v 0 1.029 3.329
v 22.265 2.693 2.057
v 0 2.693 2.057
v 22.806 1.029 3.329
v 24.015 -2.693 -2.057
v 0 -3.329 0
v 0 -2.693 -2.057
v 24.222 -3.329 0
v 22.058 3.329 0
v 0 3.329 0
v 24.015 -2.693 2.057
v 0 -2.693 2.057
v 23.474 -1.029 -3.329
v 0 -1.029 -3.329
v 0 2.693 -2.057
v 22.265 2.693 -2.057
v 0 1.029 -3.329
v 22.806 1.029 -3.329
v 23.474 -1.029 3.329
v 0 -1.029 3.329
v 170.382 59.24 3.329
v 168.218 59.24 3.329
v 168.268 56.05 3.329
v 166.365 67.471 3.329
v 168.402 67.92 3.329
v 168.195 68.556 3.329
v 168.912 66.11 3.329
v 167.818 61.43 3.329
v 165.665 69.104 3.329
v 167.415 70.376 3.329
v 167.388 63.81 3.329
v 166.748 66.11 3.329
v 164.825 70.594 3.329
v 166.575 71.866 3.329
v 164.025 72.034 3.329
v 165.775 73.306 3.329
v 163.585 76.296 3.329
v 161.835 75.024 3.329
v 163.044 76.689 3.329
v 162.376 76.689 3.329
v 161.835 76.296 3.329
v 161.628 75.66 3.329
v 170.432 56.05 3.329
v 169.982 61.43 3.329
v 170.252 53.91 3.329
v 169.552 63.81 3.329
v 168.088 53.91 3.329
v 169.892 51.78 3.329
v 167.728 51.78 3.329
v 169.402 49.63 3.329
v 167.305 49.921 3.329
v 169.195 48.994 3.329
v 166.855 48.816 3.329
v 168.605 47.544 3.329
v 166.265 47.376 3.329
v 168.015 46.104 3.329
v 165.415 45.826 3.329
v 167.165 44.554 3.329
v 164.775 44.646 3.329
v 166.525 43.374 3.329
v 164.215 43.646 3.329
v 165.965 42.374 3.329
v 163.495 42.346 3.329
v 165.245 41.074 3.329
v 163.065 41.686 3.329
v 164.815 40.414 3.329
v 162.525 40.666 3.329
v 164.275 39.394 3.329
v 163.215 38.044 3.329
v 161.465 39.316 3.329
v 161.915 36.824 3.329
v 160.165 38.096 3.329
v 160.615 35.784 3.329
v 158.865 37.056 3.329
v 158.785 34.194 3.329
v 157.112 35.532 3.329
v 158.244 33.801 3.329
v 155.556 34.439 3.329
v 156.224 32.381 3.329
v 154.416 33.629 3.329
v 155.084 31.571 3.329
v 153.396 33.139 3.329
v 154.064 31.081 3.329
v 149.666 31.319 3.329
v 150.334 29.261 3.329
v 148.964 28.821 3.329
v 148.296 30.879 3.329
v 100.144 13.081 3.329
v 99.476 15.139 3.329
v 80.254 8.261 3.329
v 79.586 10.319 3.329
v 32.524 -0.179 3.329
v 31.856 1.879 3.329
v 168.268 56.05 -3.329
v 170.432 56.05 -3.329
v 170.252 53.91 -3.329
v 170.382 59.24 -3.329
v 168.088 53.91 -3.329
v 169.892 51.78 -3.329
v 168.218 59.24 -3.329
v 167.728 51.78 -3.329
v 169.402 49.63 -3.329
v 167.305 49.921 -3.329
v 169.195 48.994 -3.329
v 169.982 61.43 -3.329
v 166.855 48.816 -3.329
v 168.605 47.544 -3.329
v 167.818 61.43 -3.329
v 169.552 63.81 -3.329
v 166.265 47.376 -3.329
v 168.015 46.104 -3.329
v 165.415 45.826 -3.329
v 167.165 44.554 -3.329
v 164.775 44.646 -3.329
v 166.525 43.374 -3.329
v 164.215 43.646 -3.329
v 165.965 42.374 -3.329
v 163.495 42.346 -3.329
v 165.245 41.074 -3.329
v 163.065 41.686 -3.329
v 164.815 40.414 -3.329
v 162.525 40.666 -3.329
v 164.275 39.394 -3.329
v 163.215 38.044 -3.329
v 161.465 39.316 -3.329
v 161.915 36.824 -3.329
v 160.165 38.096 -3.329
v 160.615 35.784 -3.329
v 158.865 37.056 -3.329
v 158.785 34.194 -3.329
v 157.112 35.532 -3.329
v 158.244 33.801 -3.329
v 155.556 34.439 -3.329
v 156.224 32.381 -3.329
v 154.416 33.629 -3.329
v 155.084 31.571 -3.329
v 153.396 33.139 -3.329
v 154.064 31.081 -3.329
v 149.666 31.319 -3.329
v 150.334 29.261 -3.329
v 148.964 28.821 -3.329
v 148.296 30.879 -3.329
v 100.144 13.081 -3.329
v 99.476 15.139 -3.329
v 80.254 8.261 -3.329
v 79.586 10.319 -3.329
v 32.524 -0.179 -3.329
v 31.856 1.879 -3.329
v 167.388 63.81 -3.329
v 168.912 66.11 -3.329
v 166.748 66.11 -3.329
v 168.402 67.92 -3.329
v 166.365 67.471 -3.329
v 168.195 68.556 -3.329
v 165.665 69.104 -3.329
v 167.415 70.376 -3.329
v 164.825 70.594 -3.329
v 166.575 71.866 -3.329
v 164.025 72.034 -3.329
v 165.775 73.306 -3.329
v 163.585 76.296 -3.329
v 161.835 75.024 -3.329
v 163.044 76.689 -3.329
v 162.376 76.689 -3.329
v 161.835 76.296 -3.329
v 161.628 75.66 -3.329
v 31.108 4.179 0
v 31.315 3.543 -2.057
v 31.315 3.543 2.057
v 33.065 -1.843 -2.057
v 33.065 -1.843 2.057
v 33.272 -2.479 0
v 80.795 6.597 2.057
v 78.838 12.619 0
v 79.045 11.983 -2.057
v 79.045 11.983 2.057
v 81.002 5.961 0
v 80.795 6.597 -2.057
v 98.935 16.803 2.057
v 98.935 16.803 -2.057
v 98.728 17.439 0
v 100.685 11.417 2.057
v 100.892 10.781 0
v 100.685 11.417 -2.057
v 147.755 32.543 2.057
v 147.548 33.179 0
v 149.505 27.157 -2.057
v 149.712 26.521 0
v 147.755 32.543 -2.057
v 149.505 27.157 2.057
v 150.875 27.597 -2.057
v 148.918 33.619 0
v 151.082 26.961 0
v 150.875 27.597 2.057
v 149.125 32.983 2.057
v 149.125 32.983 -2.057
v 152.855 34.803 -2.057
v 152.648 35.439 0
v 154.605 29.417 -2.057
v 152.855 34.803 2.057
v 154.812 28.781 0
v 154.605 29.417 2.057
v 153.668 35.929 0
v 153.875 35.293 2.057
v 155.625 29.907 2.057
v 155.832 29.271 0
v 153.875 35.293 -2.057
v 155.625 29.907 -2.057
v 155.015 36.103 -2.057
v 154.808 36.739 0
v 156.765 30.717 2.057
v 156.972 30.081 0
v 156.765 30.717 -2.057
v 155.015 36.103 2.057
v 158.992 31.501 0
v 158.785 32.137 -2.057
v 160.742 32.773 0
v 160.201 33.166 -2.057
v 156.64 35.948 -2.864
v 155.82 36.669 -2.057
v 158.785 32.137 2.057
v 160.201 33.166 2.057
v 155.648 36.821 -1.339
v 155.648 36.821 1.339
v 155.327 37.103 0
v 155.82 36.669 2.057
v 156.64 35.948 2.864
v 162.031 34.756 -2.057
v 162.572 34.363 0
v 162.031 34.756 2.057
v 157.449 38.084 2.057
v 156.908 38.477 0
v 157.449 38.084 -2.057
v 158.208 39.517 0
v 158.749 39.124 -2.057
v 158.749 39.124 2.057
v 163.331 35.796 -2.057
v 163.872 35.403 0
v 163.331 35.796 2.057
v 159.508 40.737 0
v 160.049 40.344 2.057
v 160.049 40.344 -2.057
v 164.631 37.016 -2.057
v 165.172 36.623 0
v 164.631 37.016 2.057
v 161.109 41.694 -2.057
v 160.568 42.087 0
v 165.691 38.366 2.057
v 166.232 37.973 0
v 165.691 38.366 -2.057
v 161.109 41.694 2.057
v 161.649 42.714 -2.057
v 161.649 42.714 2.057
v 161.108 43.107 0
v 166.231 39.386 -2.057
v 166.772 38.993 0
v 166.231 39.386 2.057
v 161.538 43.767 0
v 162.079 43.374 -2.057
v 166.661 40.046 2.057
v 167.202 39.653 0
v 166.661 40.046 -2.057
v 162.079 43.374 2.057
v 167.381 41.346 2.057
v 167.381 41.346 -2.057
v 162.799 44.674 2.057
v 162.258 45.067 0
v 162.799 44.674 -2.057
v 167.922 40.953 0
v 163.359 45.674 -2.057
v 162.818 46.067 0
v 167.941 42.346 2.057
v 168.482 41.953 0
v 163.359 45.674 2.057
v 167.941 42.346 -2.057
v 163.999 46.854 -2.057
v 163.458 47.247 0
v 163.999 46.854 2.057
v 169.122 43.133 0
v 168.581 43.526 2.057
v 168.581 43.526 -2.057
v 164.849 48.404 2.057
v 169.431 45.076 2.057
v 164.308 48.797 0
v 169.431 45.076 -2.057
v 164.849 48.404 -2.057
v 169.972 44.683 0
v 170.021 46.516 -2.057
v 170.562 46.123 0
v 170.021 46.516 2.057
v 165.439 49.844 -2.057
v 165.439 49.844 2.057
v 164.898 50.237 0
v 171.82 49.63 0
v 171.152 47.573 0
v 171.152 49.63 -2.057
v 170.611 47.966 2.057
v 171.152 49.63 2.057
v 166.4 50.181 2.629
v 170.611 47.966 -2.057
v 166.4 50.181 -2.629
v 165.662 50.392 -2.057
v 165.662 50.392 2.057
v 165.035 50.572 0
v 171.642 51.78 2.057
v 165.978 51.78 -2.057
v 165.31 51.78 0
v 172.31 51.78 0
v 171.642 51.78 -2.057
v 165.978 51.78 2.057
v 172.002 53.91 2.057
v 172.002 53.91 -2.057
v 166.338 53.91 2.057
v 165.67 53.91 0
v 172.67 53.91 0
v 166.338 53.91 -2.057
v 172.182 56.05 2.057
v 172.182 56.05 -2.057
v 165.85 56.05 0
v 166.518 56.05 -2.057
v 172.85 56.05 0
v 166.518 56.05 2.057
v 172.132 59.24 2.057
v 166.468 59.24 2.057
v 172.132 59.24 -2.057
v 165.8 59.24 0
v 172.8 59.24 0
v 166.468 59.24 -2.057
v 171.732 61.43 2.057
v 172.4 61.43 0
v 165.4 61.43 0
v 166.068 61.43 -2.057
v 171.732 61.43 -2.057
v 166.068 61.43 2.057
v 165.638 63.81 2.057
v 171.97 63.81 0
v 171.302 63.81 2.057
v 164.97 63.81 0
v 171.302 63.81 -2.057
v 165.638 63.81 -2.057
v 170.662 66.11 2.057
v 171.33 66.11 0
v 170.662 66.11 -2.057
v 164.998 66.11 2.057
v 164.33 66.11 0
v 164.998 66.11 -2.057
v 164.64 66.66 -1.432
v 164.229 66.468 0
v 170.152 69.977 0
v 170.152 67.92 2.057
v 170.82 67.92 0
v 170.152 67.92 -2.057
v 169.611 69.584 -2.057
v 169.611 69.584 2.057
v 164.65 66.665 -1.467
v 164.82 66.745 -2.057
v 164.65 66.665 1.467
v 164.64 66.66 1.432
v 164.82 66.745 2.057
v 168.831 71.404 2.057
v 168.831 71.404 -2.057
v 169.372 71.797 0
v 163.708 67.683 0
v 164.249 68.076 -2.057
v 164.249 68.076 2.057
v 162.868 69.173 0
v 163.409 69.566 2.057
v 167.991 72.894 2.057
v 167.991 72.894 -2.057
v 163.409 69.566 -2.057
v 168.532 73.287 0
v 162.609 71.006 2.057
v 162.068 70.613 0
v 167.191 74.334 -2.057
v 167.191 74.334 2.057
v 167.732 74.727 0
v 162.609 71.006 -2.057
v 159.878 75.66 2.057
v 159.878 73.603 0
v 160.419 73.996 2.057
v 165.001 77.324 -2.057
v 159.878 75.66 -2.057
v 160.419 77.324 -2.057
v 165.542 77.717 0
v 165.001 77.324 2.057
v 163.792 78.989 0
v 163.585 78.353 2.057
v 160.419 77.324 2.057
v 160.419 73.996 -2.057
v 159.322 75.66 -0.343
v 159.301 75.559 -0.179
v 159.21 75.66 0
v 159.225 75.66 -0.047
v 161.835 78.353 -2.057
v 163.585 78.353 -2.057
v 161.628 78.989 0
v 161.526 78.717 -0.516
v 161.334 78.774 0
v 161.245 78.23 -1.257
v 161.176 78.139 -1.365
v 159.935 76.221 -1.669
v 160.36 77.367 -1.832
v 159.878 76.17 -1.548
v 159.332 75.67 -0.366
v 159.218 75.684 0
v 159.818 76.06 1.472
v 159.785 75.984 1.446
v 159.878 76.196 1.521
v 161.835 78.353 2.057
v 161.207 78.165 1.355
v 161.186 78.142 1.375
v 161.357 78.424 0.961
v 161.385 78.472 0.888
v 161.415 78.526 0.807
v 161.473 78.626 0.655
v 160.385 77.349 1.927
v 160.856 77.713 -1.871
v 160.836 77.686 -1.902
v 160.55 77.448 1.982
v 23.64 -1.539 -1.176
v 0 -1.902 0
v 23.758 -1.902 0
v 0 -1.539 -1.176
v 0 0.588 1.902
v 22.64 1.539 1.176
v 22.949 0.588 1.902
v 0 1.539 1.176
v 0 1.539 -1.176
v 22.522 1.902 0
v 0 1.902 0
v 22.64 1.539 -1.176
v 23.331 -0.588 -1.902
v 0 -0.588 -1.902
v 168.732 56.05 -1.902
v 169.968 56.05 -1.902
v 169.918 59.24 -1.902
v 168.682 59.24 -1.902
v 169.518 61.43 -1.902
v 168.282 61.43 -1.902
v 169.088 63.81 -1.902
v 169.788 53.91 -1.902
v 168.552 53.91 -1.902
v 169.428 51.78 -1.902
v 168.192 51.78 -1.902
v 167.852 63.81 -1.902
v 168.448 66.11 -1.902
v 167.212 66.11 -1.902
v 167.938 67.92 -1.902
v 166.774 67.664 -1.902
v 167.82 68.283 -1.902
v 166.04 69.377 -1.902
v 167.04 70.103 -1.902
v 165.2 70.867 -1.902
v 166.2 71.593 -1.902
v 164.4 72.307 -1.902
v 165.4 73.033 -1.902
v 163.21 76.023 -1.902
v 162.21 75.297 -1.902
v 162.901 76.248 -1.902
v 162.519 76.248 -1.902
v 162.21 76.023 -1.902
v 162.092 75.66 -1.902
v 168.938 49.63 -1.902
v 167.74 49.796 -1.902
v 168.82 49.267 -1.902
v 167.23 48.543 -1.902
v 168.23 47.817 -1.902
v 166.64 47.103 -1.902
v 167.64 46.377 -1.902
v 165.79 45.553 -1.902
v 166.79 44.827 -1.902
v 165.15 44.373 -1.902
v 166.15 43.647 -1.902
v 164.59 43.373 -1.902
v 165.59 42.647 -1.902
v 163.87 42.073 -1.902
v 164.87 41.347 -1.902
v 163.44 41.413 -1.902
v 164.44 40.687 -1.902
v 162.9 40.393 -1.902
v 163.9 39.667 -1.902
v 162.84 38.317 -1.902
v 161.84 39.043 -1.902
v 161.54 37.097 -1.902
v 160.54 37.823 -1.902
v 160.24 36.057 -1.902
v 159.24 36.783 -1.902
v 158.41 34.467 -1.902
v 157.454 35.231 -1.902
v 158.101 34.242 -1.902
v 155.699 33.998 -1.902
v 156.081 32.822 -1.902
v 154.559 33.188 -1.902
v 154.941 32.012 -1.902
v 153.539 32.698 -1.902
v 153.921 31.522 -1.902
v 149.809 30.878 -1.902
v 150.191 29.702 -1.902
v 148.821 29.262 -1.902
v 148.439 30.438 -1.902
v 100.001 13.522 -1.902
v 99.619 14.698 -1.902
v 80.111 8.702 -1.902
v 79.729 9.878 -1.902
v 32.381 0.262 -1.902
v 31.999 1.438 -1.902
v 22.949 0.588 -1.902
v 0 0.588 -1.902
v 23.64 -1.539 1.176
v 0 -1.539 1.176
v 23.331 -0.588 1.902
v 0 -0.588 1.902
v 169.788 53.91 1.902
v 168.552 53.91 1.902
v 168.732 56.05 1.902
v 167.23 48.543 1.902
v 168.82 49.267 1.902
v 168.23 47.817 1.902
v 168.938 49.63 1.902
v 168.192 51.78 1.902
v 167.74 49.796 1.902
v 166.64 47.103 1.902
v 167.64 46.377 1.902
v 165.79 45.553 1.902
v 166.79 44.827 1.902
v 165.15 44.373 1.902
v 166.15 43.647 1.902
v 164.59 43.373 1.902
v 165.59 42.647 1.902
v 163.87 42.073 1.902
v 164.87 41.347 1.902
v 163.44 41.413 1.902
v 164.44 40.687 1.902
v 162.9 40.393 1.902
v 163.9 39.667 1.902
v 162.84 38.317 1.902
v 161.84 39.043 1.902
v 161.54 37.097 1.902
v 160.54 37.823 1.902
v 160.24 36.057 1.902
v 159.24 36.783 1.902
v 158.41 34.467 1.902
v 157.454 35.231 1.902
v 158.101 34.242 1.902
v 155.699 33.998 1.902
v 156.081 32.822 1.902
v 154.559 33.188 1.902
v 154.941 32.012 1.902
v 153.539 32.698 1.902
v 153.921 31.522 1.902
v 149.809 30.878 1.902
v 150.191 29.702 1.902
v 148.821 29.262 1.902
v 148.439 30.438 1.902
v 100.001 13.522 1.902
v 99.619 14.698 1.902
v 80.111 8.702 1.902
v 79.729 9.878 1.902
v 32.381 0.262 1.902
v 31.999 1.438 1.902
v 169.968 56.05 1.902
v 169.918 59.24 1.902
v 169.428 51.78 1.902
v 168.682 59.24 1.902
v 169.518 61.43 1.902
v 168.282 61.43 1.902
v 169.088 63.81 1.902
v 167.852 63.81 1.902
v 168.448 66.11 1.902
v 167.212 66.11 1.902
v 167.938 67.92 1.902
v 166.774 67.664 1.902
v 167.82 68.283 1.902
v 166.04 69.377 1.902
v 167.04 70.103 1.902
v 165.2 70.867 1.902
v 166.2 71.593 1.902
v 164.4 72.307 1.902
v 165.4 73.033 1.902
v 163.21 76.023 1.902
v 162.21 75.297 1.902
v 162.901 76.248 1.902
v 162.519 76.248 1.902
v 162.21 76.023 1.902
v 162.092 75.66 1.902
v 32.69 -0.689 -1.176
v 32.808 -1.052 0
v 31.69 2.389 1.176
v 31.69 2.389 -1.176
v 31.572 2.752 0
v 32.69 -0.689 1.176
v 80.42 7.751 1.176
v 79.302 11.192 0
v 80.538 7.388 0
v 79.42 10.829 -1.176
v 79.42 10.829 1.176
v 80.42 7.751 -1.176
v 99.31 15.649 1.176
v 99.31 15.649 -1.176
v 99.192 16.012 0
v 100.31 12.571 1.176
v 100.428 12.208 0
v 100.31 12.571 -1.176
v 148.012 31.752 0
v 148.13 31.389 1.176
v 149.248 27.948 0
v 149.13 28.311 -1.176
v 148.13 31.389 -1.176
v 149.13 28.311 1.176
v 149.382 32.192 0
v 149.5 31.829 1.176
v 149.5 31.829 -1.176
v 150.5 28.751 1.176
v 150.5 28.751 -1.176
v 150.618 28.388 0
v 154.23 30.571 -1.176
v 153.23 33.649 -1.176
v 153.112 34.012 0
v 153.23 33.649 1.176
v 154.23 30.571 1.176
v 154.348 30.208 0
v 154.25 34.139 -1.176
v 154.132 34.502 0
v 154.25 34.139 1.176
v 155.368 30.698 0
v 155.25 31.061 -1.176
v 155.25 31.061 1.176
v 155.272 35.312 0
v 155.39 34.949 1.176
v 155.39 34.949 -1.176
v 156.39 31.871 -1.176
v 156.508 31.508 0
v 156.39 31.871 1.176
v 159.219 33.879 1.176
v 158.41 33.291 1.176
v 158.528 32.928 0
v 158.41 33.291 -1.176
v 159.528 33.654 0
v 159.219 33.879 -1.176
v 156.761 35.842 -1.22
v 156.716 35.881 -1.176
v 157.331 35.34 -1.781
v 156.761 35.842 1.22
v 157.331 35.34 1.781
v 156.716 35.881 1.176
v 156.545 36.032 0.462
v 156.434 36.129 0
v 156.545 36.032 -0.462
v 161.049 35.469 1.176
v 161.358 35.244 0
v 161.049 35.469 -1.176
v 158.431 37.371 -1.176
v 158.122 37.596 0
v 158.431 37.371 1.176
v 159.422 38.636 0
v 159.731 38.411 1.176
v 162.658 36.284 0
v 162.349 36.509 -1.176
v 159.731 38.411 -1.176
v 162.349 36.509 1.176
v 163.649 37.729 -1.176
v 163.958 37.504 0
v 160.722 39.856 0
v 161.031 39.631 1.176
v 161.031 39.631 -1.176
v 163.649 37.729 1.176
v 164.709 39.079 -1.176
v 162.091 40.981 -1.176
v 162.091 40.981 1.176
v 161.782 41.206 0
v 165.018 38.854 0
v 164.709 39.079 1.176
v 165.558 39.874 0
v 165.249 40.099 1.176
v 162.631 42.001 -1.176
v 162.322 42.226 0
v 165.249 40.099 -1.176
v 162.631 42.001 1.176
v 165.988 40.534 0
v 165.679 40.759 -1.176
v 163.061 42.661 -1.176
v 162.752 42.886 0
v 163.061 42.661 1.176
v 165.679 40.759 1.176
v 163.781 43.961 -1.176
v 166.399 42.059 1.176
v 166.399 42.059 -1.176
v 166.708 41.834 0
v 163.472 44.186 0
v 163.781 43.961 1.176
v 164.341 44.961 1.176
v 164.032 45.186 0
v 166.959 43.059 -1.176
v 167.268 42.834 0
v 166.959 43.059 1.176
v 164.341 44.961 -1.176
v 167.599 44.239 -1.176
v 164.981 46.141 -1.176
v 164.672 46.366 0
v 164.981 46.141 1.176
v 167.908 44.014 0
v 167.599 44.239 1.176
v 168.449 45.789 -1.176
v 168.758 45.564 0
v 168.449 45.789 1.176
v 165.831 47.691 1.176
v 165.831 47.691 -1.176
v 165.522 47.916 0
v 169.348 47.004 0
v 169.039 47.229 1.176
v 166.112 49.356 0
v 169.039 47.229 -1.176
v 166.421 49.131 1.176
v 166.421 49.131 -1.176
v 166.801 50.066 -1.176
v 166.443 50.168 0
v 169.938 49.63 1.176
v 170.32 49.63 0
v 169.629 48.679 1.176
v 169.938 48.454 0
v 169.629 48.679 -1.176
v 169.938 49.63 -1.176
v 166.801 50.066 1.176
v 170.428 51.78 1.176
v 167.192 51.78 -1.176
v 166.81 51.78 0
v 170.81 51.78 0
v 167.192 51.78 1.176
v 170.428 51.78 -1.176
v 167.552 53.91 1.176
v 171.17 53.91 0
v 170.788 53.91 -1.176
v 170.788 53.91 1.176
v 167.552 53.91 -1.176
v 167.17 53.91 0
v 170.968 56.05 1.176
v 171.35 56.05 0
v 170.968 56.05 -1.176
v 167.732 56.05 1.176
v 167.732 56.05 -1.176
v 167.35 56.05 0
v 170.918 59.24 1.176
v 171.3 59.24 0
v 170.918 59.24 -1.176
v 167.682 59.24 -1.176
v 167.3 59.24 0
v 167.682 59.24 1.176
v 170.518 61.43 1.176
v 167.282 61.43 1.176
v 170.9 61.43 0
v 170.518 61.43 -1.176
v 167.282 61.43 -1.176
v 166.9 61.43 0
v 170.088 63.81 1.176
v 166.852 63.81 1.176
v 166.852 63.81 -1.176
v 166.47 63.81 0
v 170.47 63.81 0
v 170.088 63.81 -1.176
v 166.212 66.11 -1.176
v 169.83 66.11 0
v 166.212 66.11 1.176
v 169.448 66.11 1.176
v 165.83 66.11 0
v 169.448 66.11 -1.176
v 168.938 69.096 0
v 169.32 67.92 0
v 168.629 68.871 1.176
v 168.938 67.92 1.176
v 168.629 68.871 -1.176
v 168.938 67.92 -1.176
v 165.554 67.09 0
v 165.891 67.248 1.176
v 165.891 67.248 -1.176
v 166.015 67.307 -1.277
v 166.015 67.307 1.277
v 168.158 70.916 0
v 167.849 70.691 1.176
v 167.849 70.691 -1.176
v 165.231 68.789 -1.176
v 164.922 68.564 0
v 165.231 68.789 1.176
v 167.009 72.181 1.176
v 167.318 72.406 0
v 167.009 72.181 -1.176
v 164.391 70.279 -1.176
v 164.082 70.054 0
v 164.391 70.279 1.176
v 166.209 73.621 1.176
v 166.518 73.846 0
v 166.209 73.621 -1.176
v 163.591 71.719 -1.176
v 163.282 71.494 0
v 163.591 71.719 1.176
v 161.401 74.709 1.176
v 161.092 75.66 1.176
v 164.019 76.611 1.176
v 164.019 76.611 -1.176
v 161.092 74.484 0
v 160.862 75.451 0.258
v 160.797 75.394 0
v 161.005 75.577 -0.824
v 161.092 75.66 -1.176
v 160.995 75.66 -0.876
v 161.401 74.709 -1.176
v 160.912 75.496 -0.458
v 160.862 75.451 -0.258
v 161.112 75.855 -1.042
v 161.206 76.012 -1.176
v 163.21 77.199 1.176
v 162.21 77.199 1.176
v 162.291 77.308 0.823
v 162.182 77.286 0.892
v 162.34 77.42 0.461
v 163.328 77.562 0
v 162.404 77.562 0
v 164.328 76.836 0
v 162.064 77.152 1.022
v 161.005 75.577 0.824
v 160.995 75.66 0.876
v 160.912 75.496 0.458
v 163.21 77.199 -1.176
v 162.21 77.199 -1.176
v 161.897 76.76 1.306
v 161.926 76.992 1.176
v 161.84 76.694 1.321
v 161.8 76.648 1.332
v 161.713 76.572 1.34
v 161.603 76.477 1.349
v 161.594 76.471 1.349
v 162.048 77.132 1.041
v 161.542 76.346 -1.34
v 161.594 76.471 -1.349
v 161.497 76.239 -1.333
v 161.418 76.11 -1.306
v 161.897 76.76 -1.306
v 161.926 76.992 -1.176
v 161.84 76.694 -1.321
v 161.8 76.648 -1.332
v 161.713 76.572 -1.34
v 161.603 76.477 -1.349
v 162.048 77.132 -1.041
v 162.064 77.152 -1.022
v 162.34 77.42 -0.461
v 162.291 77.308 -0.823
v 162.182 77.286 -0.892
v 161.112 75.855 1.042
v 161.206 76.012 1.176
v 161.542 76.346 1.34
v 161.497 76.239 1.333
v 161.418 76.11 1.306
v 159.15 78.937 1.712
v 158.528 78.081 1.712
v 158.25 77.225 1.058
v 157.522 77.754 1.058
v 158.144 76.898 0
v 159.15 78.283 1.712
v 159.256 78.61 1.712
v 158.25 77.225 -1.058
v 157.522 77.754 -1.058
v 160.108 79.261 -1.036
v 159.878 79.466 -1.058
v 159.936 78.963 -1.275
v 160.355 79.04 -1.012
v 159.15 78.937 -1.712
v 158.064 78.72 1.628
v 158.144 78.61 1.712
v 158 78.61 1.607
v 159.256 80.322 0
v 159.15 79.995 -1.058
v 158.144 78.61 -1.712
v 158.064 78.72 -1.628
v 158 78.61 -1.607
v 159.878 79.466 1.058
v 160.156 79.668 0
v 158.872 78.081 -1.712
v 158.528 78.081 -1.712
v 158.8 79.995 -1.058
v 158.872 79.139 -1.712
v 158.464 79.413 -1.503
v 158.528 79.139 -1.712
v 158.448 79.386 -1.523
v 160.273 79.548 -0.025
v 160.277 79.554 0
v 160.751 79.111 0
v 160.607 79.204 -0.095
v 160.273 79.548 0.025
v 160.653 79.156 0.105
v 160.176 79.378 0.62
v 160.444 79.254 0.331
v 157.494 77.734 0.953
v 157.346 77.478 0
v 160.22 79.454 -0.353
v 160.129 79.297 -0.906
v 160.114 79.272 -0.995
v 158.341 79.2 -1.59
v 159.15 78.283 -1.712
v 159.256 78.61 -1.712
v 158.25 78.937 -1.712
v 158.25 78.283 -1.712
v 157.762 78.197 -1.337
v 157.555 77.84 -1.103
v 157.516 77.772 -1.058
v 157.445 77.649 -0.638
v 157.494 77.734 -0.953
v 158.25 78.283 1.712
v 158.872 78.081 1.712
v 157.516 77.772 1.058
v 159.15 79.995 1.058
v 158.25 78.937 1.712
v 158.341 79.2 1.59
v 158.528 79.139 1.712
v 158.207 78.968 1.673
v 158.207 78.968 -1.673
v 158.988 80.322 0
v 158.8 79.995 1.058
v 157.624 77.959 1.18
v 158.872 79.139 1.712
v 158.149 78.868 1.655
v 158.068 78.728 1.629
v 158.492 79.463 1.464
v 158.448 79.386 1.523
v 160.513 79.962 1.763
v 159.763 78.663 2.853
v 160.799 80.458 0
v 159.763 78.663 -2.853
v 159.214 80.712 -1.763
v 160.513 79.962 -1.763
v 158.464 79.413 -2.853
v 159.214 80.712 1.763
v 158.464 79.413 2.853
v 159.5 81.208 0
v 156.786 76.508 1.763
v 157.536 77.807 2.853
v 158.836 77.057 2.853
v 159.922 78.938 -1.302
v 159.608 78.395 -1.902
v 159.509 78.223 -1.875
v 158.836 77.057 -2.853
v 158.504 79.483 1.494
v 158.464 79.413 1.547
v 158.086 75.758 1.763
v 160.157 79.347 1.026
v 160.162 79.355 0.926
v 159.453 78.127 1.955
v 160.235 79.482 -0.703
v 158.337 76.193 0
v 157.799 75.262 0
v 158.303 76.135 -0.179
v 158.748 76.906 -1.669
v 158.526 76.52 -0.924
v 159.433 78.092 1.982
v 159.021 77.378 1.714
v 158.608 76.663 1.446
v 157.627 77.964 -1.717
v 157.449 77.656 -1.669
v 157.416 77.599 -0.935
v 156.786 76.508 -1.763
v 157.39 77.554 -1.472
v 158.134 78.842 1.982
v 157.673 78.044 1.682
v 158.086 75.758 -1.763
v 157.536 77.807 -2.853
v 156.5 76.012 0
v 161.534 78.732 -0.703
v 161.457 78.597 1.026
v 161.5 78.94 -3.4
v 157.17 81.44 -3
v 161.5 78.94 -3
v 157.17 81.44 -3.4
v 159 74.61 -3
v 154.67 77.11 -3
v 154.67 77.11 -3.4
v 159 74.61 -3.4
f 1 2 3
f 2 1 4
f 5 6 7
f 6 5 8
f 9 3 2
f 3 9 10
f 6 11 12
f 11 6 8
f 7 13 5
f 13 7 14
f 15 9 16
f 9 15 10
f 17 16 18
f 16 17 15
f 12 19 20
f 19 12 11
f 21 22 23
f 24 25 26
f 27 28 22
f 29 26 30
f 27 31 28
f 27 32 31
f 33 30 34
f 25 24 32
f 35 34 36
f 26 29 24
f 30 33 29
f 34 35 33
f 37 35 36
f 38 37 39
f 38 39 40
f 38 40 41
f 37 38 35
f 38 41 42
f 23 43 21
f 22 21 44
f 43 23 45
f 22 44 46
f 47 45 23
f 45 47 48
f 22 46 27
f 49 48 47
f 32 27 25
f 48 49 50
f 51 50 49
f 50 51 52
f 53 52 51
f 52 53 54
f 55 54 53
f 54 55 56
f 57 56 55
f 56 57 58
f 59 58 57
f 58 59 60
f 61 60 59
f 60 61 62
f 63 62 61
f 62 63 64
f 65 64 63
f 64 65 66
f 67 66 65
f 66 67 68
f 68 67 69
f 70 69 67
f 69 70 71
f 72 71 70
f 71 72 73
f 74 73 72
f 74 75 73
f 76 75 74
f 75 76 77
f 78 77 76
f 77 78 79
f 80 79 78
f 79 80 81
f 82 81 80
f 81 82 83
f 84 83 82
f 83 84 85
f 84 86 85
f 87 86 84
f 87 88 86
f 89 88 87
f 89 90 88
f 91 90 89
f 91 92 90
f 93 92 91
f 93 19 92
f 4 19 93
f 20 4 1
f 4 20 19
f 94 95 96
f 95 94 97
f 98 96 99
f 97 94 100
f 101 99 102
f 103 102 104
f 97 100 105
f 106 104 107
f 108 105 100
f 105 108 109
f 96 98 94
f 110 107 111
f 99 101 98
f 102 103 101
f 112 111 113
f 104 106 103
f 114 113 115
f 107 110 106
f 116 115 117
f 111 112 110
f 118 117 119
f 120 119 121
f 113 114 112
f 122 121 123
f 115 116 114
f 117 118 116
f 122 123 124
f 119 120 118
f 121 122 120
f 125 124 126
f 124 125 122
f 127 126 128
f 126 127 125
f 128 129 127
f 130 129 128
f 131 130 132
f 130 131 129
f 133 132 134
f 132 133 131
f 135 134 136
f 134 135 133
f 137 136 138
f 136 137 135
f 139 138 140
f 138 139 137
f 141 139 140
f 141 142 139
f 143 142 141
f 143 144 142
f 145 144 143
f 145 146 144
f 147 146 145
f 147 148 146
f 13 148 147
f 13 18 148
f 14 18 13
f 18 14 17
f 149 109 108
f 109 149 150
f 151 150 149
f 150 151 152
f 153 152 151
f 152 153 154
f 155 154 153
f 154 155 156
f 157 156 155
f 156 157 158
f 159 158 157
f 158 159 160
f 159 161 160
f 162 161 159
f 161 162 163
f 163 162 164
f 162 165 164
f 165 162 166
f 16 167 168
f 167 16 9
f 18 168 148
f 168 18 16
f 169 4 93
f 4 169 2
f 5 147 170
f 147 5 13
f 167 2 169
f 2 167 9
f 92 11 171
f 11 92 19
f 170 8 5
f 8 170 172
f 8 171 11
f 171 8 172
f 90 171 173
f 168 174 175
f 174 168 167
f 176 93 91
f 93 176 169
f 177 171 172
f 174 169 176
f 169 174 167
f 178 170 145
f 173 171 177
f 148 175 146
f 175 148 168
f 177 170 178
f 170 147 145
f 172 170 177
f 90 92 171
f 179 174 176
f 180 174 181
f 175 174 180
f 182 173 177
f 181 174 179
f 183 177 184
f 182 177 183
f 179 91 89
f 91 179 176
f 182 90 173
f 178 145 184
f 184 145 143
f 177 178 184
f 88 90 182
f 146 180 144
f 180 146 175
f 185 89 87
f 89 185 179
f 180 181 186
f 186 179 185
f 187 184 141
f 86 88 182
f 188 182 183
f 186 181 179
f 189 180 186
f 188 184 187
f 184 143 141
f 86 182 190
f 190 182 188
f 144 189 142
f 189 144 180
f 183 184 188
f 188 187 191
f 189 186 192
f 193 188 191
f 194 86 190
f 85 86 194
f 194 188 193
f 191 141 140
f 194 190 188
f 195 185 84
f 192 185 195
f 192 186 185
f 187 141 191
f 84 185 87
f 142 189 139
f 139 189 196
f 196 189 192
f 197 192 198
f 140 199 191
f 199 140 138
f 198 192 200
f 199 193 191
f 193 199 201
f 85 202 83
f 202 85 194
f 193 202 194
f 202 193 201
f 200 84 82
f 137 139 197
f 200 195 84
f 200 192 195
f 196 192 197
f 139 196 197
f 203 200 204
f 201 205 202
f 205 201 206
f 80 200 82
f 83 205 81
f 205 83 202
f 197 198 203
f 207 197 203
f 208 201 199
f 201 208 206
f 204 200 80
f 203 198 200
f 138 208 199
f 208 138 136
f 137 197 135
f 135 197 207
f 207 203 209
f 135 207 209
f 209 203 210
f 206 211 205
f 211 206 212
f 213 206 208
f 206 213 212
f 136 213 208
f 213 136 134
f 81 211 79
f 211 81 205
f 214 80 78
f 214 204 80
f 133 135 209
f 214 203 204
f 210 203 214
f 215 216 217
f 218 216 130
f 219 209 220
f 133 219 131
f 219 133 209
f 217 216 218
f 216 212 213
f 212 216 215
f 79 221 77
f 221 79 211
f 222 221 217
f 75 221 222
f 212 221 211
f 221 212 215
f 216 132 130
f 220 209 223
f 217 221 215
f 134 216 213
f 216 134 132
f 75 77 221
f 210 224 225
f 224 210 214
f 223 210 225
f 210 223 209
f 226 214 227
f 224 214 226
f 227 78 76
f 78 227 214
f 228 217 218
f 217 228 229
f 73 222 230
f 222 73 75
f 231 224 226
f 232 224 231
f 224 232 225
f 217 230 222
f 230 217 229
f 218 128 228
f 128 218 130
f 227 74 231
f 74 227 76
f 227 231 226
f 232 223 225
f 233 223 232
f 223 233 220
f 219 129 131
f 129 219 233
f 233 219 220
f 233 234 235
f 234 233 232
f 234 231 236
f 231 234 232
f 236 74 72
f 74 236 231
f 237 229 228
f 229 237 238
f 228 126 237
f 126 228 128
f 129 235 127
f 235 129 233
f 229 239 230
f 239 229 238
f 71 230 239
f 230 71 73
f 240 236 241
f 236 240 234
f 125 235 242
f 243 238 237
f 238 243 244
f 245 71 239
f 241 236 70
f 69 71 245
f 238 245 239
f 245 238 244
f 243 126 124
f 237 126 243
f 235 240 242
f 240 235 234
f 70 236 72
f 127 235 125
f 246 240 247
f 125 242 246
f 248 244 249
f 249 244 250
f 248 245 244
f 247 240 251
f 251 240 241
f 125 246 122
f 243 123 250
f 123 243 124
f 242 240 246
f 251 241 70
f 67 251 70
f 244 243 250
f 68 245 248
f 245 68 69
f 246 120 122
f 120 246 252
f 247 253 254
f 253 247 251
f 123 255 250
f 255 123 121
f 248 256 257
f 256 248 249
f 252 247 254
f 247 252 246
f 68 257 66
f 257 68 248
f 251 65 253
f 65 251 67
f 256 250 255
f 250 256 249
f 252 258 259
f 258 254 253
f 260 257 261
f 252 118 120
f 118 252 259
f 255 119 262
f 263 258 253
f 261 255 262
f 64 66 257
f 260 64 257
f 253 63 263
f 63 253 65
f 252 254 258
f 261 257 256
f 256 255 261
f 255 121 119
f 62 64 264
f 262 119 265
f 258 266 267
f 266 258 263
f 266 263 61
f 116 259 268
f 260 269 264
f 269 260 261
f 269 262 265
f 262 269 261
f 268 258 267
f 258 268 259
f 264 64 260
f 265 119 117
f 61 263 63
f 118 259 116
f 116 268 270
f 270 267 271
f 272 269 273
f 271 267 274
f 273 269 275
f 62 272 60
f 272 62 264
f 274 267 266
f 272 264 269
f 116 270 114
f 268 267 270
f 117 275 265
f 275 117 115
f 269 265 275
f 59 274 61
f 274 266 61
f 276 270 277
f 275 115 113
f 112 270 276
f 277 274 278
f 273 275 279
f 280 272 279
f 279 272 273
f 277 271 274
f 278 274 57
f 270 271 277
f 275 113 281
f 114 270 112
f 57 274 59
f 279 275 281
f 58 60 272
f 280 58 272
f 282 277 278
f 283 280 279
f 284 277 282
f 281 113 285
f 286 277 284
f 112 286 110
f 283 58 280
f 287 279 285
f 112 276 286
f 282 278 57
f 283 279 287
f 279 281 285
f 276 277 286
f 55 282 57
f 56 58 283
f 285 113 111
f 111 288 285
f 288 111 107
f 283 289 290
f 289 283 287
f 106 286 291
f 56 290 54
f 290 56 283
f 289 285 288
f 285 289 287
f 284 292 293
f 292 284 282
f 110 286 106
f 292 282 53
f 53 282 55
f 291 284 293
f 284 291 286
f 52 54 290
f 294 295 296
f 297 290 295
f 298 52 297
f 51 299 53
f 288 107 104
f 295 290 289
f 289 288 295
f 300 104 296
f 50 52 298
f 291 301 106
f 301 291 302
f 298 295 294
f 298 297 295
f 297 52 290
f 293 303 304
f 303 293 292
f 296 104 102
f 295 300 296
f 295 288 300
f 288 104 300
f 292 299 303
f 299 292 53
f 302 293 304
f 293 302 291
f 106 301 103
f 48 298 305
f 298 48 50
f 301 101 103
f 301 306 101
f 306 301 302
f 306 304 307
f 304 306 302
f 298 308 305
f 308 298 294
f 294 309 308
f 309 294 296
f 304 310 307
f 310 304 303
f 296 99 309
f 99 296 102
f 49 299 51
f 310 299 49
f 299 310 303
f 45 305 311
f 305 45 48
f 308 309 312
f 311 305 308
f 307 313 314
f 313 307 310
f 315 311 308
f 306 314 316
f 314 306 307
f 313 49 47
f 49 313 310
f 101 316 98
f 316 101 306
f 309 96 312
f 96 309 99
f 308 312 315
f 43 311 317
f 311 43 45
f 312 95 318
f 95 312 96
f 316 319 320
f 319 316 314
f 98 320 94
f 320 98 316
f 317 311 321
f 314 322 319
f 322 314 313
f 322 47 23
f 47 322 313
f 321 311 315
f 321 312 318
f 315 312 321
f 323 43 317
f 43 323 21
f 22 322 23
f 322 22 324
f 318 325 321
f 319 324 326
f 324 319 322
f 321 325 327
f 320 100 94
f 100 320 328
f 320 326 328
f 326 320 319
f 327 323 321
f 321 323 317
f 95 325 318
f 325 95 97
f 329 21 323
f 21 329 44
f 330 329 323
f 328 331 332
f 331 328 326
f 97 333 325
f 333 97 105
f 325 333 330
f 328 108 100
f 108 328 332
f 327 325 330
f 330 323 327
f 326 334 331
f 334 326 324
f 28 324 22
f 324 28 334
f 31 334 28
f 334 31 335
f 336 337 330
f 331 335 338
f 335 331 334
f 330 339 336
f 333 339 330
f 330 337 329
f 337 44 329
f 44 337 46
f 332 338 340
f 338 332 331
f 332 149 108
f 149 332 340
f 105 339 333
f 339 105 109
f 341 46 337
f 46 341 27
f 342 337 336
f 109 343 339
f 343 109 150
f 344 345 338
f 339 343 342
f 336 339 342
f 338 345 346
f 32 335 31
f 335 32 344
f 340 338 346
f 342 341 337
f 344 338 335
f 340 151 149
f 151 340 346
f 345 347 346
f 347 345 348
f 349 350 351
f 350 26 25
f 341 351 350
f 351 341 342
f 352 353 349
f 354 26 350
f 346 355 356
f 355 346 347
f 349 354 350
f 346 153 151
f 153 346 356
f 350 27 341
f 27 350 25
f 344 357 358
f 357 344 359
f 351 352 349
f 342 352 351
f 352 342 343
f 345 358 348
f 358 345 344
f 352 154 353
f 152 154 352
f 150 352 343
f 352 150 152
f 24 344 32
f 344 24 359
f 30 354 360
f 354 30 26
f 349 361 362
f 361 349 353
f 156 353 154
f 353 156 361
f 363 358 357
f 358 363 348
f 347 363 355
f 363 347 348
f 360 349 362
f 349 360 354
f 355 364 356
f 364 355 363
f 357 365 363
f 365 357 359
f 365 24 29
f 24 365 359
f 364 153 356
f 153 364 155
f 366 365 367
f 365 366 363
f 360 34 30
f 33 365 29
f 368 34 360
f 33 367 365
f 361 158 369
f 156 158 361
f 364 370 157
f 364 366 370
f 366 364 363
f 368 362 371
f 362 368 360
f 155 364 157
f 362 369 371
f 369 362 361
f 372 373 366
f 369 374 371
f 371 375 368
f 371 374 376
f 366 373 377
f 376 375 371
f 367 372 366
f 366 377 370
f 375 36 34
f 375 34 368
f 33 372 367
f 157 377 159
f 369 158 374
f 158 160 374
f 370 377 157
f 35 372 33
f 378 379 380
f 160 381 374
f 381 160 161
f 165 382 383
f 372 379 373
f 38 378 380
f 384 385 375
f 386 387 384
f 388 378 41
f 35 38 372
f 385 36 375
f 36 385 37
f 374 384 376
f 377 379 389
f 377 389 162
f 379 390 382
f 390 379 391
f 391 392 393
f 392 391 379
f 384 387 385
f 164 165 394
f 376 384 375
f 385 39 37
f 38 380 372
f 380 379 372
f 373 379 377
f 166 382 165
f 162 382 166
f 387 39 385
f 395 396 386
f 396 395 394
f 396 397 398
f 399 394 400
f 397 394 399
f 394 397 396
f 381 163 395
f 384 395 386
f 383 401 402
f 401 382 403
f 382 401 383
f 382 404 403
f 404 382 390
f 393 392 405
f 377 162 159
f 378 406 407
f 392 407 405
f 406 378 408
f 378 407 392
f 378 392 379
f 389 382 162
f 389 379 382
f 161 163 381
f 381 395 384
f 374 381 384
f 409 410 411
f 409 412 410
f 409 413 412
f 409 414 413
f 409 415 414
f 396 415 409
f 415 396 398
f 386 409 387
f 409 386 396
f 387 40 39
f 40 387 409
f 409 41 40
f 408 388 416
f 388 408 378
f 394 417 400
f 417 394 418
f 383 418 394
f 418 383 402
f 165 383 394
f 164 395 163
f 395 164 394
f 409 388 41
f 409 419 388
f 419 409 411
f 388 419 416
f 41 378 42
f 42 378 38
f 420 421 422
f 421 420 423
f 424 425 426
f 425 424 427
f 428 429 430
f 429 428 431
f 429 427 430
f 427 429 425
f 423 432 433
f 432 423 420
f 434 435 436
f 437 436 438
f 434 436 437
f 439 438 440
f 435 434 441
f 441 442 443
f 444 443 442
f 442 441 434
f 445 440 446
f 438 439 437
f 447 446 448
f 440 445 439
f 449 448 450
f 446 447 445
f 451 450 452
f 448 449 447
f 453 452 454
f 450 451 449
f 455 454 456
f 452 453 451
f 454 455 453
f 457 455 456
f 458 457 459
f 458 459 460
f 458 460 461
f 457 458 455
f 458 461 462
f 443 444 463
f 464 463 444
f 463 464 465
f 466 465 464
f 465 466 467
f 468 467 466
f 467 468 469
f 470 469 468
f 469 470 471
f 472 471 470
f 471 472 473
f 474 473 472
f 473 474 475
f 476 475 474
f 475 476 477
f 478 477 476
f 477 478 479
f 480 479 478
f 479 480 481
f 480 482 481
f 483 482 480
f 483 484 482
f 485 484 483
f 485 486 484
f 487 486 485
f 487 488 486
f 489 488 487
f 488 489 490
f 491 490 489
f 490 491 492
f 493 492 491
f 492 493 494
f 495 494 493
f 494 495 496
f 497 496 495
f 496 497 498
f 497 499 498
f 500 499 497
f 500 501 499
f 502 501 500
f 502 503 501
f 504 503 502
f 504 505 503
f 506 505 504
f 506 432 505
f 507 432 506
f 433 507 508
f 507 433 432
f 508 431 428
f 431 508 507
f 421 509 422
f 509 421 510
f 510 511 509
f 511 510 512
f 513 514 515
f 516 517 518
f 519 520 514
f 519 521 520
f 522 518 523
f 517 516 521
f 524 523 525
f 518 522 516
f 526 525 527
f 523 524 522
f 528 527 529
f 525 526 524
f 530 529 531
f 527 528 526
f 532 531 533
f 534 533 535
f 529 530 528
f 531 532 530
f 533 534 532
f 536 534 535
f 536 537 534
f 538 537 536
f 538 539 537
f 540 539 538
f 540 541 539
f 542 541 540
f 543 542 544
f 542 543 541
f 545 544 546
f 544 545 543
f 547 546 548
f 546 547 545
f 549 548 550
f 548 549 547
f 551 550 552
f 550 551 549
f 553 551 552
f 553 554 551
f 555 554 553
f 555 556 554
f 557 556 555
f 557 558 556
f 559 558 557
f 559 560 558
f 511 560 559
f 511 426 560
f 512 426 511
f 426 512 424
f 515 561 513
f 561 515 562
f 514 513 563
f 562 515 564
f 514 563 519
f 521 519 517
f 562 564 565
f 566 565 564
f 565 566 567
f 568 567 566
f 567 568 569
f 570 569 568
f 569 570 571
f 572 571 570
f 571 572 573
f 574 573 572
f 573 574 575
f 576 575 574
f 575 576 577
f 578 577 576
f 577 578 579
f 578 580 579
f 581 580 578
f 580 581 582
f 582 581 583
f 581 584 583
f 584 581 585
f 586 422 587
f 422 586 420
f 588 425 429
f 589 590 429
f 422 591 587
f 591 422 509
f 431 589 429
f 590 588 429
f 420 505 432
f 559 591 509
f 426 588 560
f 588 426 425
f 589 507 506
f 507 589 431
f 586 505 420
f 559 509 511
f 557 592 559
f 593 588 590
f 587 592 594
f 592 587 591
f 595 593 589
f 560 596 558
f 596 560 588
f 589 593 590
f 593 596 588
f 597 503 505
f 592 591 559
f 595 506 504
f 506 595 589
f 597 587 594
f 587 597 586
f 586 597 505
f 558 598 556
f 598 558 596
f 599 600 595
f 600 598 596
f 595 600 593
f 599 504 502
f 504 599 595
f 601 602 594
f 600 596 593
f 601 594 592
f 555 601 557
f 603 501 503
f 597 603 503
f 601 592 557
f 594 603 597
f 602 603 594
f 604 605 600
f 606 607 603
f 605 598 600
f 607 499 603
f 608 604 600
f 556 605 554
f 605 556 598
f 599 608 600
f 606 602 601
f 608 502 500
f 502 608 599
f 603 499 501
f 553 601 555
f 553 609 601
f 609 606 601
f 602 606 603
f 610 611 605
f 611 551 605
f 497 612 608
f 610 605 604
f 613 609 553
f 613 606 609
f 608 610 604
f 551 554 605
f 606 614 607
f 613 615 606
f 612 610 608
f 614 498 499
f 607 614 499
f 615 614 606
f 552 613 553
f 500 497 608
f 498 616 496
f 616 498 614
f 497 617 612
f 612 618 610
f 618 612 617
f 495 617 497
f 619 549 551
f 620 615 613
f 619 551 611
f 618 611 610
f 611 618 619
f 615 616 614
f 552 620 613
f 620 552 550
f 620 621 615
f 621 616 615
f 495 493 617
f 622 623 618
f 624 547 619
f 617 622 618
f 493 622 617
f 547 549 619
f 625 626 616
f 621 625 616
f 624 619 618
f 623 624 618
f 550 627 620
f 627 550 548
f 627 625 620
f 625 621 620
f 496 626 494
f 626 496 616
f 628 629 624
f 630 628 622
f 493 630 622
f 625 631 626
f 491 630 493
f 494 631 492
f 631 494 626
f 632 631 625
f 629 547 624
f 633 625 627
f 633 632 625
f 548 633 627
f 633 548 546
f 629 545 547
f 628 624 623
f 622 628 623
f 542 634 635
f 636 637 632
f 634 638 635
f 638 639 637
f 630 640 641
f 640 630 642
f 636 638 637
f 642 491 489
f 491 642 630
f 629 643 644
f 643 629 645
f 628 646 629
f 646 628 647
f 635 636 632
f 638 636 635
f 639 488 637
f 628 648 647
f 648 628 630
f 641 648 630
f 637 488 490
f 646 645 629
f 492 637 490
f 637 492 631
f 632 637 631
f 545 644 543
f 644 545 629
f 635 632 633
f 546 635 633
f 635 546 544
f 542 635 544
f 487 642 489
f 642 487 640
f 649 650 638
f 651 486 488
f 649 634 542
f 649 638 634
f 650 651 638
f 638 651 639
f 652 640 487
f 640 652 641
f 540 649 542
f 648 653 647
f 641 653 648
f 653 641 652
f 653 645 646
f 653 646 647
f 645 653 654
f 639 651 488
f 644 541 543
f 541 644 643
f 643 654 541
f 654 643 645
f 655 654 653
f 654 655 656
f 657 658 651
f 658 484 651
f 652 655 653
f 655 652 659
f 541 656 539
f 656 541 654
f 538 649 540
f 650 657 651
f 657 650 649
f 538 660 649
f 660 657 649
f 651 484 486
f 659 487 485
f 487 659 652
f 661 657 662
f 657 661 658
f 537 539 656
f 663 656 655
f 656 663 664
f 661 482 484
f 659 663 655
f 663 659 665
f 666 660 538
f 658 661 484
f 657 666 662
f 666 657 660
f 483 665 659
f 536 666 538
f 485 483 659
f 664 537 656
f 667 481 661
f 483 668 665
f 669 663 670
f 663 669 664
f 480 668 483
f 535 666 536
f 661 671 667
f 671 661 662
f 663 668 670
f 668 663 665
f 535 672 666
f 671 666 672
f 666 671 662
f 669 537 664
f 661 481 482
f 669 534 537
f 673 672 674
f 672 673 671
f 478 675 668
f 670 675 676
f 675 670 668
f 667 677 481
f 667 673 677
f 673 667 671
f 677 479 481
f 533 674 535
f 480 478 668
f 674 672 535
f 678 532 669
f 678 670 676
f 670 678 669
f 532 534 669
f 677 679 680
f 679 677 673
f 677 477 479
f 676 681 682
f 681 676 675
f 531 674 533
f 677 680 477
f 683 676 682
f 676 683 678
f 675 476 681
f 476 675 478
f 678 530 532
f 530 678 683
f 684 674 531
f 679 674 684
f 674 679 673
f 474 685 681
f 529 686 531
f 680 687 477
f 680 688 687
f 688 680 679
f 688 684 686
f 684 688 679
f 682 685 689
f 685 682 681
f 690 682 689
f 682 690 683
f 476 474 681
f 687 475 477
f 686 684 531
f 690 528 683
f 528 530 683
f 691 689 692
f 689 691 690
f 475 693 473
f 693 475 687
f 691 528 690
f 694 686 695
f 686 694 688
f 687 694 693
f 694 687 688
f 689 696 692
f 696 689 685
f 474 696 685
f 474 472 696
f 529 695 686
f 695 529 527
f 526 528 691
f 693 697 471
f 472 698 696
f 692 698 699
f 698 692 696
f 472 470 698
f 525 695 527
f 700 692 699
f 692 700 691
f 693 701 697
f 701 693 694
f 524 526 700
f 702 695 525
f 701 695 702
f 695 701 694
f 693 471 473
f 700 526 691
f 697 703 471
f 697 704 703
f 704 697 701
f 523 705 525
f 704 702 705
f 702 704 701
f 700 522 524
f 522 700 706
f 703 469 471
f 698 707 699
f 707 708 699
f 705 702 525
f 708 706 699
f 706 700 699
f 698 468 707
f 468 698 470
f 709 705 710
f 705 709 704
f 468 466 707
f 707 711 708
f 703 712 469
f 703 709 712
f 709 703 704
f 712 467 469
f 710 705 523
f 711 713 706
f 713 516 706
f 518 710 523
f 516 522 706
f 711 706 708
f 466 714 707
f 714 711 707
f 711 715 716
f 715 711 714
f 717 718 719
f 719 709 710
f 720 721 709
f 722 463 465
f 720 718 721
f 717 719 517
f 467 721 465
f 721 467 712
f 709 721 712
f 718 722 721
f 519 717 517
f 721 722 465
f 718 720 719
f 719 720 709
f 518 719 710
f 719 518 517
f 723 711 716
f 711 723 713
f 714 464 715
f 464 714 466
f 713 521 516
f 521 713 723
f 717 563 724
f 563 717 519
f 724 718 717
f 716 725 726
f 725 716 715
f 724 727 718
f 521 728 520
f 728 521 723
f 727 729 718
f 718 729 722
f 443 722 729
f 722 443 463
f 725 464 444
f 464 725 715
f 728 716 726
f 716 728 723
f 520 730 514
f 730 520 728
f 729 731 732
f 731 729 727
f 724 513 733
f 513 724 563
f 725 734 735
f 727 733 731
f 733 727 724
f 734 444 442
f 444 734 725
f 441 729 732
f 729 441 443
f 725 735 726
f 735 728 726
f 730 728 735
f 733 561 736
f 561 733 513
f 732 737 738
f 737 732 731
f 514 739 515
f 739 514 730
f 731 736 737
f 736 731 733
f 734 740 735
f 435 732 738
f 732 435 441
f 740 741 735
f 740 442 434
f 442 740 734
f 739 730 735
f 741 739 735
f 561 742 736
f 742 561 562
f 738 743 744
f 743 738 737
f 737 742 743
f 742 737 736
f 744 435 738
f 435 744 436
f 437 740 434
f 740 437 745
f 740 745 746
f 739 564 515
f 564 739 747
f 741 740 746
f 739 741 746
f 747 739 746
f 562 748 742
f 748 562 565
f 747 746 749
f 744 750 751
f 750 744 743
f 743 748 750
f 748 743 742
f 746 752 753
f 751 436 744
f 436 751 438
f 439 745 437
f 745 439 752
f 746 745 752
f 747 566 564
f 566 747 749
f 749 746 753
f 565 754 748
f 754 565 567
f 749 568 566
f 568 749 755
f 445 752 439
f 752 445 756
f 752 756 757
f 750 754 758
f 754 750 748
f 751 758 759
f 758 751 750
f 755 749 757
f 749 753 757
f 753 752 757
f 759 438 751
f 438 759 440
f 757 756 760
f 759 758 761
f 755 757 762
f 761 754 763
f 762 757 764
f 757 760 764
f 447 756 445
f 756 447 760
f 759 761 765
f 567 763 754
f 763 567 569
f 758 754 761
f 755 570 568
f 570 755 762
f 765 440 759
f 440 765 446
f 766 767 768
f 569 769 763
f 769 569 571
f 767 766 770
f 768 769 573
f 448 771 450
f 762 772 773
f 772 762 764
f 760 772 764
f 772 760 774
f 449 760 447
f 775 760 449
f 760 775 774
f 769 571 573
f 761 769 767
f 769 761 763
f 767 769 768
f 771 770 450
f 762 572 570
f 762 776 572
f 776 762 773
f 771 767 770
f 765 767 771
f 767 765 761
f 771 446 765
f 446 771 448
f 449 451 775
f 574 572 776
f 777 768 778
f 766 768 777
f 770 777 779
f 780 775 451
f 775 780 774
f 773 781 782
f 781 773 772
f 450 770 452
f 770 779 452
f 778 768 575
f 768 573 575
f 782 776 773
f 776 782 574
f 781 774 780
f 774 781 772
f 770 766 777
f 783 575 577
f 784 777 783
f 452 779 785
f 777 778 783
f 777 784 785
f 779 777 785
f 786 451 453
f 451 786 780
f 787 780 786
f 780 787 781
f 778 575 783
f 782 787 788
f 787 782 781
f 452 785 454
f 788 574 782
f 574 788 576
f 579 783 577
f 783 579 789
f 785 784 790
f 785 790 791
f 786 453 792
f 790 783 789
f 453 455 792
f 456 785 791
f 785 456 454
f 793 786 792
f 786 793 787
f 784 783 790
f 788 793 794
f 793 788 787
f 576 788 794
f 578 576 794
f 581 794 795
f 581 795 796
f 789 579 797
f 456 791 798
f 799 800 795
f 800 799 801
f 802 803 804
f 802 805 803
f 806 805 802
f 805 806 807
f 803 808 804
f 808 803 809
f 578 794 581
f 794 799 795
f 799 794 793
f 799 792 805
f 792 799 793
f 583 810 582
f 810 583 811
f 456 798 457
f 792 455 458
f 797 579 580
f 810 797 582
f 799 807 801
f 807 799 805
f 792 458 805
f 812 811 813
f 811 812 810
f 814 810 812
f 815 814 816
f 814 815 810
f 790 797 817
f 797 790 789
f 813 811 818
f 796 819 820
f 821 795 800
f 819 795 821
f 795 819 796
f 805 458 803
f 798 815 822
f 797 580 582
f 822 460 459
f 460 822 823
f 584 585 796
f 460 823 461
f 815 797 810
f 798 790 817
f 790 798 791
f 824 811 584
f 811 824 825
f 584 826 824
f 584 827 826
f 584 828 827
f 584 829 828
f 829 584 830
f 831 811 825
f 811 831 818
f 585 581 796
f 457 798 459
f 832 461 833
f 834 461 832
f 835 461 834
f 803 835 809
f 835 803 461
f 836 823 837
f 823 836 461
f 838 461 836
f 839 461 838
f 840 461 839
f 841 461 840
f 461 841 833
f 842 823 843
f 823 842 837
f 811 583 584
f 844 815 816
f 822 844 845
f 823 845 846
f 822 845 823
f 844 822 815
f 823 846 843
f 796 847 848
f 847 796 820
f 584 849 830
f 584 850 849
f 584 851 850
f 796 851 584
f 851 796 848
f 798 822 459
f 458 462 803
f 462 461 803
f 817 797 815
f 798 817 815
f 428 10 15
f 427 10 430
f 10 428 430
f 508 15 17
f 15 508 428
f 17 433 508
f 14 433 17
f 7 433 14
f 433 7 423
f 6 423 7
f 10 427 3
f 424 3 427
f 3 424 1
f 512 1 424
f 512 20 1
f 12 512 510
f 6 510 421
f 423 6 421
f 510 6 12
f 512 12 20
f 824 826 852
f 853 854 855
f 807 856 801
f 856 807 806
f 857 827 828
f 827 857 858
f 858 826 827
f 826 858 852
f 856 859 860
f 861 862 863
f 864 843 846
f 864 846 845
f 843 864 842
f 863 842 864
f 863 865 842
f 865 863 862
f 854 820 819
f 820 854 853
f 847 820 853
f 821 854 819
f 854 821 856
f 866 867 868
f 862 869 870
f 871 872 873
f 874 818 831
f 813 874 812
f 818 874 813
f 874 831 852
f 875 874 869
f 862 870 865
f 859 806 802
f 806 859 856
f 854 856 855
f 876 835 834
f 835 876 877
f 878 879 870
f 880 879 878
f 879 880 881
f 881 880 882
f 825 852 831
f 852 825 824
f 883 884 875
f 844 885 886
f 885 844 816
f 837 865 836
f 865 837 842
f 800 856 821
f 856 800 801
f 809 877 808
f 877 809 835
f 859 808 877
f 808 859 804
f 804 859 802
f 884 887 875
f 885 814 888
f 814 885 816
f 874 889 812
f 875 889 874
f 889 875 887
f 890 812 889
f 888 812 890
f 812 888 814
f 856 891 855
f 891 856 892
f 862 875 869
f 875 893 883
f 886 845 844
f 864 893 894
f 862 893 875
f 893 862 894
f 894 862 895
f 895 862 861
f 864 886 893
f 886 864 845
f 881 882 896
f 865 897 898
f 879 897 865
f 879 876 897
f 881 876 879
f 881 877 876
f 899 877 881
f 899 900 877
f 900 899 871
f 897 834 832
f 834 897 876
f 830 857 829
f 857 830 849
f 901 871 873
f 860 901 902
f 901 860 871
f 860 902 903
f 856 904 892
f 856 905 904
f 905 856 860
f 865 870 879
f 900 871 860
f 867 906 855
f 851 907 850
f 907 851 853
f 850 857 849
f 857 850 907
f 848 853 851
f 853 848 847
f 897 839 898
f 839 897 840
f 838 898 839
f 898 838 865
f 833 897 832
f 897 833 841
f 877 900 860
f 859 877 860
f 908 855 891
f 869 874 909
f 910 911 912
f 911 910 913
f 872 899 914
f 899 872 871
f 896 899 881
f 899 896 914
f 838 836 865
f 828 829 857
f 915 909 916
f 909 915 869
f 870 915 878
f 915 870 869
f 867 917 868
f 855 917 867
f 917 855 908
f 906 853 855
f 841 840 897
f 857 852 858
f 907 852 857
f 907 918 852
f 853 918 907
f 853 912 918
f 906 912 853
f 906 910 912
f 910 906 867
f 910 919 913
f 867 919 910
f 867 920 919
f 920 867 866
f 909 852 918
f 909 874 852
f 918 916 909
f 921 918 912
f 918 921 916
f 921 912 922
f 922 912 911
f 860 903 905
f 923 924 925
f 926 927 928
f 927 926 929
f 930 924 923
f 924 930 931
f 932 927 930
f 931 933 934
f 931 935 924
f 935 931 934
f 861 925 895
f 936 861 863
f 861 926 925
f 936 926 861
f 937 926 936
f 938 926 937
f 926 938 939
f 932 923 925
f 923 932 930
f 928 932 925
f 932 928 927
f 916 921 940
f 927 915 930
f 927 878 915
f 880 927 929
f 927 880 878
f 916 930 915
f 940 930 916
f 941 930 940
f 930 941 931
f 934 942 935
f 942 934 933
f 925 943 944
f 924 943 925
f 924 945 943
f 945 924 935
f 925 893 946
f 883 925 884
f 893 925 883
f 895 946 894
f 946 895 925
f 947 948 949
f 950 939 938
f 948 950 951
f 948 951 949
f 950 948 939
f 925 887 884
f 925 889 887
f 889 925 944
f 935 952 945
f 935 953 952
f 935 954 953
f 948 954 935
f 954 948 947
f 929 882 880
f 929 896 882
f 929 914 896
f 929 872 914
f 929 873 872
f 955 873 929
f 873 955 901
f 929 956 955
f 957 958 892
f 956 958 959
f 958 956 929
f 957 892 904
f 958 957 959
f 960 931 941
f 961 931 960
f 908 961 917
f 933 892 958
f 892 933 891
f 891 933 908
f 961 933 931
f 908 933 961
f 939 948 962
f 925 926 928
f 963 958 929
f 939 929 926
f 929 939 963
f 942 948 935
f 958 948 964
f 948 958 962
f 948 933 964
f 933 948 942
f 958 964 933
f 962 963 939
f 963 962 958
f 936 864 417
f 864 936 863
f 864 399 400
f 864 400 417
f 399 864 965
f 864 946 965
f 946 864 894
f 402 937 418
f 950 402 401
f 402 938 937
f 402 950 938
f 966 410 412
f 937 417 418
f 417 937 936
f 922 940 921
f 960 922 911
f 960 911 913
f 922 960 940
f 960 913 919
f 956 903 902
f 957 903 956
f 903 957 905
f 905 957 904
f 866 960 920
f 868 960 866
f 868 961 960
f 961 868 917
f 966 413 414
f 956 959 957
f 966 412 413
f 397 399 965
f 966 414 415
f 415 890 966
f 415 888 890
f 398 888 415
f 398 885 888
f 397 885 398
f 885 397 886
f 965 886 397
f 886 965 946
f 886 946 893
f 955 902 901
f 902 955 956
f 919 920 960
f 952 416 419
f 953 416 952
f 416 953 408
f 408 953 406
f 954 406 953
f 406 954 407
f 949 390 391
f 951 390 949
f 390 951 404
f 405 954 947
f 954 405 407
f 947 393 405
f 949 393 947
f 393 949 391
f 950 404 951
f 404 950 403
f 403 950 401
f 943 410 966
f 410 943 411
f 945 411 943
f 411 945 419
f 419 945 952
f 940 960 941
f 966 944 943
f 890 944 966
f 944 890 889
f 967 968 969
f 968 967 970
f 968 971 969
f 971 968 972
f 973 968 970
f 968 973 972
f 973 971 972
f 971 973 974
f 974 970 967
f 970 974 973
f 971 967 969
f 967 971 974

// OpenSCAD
/*
//how to make an array
array=[10,20,30,40,50,60];
for(i=[5:-1:0]){
    //translate([i,0,0])cube([1,1,array[i]]);
    for(j=[i:-1:0]){
    translate([i,j,0])cube([1,1,array[j]]);
}
}

xarray=[0,23,32,80,100,150,155,159,160,162,162.8,163.5,164.5,167,168,169,170,170.2,170.5,170.5,170.2,168,165,163,159];
yarray=[0,0,0.9,9.3,14.1,30.3,32.6,34.8,35.9,37.7,39,40,41,45.2,46.7,48.2,51.8,54.4,56.2,59.2,63.8,67.9,73.7,75.7,78.6,85.2];
*/
// 
xxa=[162.71,160.705,158];
yya=[75.66,77.135,78.61];
xarray=[0,23.14,32.19,79.92,99.81,148.63,150,153.73,154.75,155.89,157.91,159.74,161.04,162.34,163.4,163.94,164.37,165.09,165.65,166.29,167.14,167.73,168.32,168.81,169.17,169.35,169.3,168.9,168.47,167.83,167.32,166.54,165.7,164.9,162.71,158.7];

yarray=[0,0,0.85,9.29,14.11,29.85,30.29,32.11,32.6,33.41,34.83,36.42,37.46,38.68,40.03,41.05,41.71,43.01,44.01,45.19,46.74,48.18,49.63,51.78,53.91,56.05,59.24,61.43,63.81,66.11,67.92,69.74,71.23,72.67,75.66,78.61];


xarray2=[-6,0,23.14,32.19,79.92,99.81,148.63,150,153.73,154.75,155.89,157.91,159.74,161.04,162.34,163.4,163.94,164.37,165.09,165.65,166.29,167.14,167.73,168.32,168.81,169.17,169.35,169.3,168.9,168.47,167.83,167.32,166.54,165.7,164.9,162.71,158.7,153.77];

yarray2=[0,0,0,0.85,9.29,14.11,29.85,30.29,32.11,32.6,33.41,34.83,36.42,37.46,38.68,40.03,41.05,41.71,43.01,44.01,45.19,46.74,48.18,49.63,51.78,53.91,56.05,59.24,61.43,63.81,66.11,67.92,69.74,71.23,72.67,75.66,78.61,82.34];


difference(){
    union(){
for(i=[0:1:33]){
    hull(){
    translate([xarray[i],yarray[i],0])//cylinder(r=.5,h=10);
        sphere(3.5,$fn=10);
    translate([xarray[i+1],yarray[i+1],0])//cylinder(r=.5,h=10);
        sphere(3.5,$fn=10);
    
        }}
        // ear plug
        // i took the last two points on the array and took a moddle point  turns out that the distance is 2mm which is enough 
     hull(){
     translate([xxa[0],yya[0],0])
sphere(3,$fn=10);
         translate([xxa[1],yya[1],0])
rotate([0,0,-30])rotate([0,90,0])cylinder(r=1,h=1);
     }
     
         
     translate([xxa[1],yya[1],0])
rotate([0,0,-30])rotate([0,90,0])cylinder(r=1,h=1);
         translate([xxa[2],yya[2],0])
rotate([0,0,-30])rotate([0,90,0])rotate([0,0,18])cylinder(r=3,h=1.5);
             
translate([xxa[2],yya[2],0])rotate([0,0,-30])rotate([0,90,0])rotate([0,0,18])cylinder(r=2,h=3);
     
     

        
       
        }
        union(){
      translate([-10,-5,-5])cube([10,10,10]);  
for(i=[0:1:34]){
    hull(){
    translate([xarray2[i],yarray2[i],0])//cylinder(r=.5,h=10);
        sphere(2,$fn=10);
    translate([xarray2[i+1],yarray2[i+1],0])//cylinder(r=.5,h=10);
        sphere(2,$fn=10);
    
        }}
           hull(){
    translate([xarray2[35],yarray2[35],0])//cylinder(r=.5,h=10);
        sphere(1.2,$fn=10);
    translate([xarray2[
               36],yarray2[36],0])//cylinder(r=.5,h=10);
        sphere(1.8,$fn=10);
    
        }
           hull(){
    translate([xarray2[34],yarray2[34],0])//cylinder(r=.5,h=10);
        sphere(2,$fn=10);
    translate([xarray2[35],yarray2[35],0])//cylinder(r=.5,h=10);
        sphere(1.5,$fn=10);
    
        }
     // cube([200,200,10]);// cut in half 
        
        }}
                 translate([xxa[2]+1,yya[2]-4,-3.4])
rotate([0,0,60])cube([5,5,.4]);
